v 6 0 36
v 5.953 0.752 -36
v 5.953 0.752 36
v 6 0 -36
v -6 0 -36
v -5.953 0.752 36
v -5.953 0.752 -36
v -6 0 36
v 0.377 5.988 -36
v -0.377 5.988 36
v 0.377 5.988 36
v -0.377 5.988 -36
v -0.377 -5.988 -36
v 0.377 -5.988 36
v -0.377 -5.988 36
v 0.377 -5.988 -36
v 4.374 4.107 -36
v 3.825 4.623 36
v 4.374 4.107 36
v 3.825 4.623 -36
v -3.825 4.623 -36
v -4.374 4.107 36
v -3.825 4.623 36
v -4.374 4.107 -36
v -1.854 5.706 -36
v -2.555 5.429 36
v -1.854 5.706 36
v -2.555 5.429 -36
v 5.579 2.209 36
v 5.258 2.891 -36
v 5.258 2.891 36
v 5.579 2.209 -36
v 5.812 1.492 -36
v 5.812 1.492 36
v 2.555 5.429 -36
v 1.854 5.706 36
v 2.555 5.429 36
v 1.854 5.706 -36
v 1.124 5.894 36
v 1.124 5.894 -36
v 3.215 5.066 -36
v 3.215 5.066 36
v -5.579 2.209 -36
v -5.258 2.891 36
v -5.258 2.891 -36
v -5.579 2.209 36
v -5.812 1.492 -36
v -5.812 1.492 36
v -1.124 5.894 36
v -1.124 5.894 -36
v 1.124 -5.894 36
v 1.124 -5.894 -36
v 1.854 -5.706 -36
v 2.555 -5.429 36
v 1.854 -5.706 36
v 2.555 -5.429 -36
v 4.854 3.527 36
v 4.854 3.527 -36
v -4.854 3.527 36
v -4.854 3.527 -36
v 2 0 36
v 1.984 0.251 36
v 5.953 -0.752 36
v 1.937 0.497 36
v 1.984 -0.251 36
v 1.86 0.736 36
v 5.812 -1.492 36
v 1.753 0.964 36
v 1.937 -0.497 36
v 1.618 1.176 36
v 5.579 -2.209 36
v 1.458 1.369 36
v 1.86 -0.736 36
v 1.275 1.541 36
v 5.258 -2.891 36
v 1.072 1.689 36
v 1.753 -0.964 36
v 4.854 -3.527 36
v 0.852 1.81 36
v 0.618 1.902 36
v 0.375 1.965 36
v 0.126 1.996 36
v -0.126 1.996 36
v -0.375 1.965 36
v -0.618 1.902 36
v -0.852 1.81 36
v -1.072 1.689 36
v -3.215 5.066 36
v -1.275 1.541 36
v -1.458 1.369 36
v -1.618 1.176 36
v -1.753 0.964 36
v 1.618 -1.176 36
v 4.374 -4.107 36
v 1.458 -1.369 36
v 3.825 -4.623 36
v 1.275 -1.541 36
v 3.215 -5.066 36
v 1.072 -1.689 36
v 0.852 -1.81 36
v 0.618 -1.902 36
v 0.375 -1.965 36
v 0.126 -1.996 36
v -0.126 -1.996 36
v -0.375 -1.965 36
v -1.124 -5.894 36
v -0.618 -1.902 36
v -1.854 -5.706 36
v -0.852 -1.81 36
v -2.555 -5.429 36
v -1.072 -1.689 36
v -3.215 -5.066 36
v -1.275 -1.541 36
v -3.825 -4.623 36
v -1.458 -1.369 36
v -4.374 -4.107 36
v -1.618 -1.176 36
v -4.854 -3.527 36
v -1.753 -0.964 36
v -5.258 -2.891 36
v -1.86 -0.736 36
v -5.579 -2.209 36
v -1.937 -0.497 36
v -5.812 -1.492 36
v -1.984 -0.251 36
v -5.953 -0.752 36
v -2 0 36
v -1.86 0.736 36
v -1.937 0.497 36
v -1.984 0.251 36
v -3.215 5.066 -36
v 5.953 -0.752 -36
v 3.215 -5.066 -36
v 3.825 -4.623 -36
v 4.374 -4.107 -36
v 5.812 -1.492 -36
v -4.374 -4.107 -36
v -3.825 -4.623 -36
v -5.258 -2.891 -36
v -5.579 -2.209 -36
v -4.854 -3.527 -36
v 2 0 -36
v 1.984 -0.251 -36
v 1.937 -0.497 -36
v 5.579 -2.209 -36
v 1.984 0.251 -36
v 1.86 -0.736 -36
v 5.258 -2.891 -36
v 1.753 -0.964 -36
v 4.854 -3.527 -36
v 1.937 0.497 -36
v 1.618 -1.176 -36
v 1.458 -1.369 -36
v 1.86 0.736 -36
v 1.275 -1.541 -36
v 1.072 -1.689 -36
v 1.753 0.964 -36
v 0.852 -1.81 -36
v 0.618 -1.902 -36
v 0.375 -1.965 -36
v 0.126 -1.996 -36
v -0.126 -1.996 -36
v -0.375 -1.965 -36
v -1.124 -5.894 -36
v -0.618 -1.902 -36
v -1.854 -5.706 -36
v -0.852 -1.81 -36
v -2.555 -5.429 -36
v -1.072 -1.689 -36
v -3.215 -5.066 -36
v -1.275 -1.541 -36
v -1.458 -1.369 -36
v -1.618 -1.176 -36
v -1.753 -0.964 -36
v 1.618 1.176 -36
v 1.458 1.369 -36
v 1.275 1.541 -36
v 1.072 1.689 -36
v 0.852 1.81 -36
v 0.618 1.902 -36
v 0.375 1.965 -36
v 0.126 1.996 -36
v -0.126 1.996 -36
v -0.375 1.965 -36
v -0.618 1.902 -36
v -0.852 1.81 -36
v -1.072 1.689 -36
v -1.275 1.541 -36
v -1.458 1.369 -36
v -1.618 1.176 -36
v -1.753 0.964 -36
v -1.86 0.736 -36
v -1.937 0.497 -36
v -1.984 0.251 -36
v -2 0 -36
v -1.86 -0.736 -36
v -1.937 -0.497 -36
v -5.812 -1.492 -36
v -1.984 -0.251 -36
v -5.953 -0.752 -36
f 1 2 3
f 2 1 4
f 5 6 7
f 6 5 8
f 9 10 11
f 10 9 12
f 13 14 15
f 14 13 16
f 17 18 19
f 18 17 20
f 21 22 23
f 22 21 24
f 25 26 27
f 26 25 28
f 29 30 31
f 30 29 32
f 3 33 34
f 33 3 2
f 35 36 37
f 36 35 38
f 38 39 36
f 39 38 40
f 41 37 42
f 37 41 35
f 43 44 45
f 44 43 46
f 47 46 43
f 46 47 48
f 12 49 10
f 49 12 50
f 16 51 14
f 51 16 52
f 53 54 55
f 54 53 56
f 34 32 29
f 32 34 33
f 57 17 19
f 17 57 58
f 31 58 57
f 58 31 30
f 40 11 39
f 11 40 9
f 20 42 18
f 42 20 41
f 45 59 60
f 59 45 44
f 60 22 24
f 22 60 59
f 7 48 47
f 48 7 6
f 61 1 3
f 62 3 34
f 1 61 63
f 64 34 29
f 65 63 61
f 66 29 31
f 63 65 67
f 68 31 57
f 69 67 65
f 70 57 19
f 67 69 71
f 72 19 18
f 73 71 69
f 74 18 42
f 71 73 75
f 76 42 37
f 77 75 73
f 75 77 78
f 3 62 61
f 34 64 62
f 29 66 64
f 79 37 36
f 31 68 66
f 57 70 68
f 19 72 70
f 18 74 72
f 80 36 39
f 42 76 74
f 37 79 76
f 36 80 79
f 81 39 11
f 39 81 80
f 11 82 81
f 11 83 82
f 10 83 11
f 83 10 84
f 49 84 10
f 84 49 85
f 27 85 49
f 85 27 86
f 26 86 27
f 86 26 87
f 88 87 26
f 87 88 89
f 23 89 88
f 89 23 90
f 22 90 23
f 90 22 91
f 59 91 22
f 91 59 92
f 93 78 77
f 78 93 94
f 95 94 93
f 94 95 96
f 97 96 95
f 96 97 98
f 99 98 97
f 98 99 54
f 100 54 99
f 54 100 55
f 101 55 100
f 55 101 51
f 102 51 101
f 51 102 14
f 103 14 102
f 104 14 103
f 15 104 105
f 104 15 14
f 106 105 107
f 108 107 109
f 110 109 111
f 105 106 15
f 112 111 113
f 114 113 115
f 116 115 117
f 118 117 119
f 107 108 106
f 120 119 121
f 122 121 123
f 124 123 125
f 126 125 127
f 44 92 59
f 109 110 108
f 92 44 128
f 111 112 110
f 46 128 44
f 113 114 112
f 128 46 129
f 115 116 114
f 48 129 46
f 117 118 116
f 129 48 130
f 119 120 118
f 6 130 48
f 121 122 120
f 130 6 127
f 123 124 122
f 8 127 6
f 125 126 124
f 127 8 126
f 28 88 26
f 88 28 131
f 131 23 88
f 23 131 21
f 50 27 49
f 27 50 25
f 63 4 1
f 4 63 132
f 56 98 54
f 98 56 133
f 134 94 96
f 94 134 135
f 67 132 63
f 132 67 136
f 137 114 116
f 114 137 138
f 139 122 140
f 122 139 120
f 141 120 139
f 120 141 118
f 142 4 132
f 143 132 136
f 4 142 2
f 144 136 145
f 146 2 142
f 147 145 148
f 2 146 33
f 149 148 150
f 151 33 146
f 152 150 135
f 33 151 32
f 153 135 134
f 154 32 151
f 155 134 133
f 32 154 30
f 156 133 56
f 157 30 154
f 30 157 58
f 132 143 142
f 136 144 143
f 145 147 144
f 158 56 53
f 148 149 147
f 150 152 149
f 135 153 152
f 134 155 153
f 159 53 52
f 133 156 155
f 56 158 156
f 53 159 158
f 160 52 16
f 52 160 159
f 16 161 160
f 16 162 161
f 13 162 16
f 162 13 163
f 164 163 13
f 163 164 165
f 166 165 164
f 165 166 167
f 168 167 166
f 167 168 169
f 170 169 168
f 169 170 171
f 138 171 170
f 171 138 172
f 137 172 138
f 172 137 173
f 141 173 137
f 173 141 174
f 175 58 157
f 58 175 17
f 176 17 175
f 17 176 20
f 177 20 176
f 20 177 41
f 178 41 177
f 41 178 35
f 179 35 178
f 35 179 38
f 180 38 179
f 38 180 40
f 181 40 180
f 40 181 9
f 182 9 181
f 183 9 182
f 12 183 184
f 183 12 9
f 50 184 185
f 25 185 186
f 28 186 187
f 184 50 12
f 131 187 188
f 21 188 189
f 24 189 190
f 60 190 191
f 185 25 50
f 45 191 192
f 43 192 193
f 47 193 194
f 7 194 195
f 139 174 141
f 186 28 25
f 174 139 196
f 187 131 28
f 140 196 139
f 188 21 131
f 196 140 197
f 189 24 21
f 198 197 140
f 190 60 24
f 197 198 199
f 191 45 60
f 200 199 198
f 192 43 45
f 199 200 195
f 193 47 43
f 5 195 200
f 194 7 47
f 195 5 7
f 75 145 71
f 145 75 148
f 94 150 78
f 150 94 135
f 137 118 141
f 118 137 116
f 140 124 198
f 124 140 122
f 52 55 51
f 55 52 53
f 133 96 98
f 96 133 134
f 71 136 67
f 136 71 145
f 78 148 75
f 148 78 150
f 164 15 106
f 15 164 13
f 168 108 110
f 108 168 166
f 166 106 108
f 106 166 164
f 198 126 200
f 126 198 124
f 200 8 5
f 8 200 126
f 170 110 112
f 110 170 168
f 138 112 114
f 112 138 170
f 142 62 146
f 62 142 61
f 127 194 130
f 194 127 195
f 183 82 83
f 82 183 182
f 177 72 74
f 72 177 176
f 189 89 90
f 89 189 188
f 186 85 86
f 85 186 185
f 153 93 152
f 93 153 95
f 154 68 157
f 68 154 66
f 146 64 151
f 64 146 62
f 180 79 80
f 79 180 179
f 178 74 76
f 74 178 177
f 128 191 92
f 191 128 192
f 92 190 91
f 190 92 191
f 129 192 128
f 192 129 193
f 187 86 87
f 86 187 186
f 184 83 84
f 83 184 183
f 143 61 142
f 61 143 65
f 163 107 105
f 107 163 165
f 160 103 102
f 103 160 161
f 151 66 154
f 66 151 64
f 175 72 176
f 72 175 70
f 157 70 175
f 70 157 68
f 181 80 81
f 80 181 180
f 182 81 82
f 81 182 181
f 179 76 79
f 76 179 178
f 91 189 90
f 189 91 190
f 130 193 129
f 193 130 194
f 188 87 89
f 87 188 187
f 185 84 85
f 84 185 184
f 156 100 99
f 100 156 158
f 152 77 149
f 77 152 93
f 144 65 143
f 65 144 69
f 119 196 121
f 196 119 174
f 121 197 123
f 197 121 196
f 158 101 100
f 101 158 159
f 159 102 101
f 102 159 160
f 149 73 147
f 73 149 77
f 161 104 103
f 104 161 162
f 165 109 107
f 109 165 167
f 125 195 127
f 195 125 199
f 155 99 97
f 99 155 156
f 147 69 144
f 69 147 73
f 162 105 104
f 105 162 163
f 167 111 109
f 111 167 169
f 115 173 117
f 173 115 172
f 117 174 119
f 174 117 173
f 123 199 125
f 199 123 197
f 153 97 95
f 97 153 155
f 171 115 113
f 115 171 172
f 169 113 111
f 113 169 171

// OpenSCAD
$fn = 50;


difference() {
	union() {
		translate(v = [0, 0, -36.0000000000]) {
			cylinder(h = 72, r = 6.0000000000);
		}
	}
	union() {
		translate(v = [0, 0, -100.0000000000]) {
			cylinder(h = 200, r = 2);
		}
	}
}
